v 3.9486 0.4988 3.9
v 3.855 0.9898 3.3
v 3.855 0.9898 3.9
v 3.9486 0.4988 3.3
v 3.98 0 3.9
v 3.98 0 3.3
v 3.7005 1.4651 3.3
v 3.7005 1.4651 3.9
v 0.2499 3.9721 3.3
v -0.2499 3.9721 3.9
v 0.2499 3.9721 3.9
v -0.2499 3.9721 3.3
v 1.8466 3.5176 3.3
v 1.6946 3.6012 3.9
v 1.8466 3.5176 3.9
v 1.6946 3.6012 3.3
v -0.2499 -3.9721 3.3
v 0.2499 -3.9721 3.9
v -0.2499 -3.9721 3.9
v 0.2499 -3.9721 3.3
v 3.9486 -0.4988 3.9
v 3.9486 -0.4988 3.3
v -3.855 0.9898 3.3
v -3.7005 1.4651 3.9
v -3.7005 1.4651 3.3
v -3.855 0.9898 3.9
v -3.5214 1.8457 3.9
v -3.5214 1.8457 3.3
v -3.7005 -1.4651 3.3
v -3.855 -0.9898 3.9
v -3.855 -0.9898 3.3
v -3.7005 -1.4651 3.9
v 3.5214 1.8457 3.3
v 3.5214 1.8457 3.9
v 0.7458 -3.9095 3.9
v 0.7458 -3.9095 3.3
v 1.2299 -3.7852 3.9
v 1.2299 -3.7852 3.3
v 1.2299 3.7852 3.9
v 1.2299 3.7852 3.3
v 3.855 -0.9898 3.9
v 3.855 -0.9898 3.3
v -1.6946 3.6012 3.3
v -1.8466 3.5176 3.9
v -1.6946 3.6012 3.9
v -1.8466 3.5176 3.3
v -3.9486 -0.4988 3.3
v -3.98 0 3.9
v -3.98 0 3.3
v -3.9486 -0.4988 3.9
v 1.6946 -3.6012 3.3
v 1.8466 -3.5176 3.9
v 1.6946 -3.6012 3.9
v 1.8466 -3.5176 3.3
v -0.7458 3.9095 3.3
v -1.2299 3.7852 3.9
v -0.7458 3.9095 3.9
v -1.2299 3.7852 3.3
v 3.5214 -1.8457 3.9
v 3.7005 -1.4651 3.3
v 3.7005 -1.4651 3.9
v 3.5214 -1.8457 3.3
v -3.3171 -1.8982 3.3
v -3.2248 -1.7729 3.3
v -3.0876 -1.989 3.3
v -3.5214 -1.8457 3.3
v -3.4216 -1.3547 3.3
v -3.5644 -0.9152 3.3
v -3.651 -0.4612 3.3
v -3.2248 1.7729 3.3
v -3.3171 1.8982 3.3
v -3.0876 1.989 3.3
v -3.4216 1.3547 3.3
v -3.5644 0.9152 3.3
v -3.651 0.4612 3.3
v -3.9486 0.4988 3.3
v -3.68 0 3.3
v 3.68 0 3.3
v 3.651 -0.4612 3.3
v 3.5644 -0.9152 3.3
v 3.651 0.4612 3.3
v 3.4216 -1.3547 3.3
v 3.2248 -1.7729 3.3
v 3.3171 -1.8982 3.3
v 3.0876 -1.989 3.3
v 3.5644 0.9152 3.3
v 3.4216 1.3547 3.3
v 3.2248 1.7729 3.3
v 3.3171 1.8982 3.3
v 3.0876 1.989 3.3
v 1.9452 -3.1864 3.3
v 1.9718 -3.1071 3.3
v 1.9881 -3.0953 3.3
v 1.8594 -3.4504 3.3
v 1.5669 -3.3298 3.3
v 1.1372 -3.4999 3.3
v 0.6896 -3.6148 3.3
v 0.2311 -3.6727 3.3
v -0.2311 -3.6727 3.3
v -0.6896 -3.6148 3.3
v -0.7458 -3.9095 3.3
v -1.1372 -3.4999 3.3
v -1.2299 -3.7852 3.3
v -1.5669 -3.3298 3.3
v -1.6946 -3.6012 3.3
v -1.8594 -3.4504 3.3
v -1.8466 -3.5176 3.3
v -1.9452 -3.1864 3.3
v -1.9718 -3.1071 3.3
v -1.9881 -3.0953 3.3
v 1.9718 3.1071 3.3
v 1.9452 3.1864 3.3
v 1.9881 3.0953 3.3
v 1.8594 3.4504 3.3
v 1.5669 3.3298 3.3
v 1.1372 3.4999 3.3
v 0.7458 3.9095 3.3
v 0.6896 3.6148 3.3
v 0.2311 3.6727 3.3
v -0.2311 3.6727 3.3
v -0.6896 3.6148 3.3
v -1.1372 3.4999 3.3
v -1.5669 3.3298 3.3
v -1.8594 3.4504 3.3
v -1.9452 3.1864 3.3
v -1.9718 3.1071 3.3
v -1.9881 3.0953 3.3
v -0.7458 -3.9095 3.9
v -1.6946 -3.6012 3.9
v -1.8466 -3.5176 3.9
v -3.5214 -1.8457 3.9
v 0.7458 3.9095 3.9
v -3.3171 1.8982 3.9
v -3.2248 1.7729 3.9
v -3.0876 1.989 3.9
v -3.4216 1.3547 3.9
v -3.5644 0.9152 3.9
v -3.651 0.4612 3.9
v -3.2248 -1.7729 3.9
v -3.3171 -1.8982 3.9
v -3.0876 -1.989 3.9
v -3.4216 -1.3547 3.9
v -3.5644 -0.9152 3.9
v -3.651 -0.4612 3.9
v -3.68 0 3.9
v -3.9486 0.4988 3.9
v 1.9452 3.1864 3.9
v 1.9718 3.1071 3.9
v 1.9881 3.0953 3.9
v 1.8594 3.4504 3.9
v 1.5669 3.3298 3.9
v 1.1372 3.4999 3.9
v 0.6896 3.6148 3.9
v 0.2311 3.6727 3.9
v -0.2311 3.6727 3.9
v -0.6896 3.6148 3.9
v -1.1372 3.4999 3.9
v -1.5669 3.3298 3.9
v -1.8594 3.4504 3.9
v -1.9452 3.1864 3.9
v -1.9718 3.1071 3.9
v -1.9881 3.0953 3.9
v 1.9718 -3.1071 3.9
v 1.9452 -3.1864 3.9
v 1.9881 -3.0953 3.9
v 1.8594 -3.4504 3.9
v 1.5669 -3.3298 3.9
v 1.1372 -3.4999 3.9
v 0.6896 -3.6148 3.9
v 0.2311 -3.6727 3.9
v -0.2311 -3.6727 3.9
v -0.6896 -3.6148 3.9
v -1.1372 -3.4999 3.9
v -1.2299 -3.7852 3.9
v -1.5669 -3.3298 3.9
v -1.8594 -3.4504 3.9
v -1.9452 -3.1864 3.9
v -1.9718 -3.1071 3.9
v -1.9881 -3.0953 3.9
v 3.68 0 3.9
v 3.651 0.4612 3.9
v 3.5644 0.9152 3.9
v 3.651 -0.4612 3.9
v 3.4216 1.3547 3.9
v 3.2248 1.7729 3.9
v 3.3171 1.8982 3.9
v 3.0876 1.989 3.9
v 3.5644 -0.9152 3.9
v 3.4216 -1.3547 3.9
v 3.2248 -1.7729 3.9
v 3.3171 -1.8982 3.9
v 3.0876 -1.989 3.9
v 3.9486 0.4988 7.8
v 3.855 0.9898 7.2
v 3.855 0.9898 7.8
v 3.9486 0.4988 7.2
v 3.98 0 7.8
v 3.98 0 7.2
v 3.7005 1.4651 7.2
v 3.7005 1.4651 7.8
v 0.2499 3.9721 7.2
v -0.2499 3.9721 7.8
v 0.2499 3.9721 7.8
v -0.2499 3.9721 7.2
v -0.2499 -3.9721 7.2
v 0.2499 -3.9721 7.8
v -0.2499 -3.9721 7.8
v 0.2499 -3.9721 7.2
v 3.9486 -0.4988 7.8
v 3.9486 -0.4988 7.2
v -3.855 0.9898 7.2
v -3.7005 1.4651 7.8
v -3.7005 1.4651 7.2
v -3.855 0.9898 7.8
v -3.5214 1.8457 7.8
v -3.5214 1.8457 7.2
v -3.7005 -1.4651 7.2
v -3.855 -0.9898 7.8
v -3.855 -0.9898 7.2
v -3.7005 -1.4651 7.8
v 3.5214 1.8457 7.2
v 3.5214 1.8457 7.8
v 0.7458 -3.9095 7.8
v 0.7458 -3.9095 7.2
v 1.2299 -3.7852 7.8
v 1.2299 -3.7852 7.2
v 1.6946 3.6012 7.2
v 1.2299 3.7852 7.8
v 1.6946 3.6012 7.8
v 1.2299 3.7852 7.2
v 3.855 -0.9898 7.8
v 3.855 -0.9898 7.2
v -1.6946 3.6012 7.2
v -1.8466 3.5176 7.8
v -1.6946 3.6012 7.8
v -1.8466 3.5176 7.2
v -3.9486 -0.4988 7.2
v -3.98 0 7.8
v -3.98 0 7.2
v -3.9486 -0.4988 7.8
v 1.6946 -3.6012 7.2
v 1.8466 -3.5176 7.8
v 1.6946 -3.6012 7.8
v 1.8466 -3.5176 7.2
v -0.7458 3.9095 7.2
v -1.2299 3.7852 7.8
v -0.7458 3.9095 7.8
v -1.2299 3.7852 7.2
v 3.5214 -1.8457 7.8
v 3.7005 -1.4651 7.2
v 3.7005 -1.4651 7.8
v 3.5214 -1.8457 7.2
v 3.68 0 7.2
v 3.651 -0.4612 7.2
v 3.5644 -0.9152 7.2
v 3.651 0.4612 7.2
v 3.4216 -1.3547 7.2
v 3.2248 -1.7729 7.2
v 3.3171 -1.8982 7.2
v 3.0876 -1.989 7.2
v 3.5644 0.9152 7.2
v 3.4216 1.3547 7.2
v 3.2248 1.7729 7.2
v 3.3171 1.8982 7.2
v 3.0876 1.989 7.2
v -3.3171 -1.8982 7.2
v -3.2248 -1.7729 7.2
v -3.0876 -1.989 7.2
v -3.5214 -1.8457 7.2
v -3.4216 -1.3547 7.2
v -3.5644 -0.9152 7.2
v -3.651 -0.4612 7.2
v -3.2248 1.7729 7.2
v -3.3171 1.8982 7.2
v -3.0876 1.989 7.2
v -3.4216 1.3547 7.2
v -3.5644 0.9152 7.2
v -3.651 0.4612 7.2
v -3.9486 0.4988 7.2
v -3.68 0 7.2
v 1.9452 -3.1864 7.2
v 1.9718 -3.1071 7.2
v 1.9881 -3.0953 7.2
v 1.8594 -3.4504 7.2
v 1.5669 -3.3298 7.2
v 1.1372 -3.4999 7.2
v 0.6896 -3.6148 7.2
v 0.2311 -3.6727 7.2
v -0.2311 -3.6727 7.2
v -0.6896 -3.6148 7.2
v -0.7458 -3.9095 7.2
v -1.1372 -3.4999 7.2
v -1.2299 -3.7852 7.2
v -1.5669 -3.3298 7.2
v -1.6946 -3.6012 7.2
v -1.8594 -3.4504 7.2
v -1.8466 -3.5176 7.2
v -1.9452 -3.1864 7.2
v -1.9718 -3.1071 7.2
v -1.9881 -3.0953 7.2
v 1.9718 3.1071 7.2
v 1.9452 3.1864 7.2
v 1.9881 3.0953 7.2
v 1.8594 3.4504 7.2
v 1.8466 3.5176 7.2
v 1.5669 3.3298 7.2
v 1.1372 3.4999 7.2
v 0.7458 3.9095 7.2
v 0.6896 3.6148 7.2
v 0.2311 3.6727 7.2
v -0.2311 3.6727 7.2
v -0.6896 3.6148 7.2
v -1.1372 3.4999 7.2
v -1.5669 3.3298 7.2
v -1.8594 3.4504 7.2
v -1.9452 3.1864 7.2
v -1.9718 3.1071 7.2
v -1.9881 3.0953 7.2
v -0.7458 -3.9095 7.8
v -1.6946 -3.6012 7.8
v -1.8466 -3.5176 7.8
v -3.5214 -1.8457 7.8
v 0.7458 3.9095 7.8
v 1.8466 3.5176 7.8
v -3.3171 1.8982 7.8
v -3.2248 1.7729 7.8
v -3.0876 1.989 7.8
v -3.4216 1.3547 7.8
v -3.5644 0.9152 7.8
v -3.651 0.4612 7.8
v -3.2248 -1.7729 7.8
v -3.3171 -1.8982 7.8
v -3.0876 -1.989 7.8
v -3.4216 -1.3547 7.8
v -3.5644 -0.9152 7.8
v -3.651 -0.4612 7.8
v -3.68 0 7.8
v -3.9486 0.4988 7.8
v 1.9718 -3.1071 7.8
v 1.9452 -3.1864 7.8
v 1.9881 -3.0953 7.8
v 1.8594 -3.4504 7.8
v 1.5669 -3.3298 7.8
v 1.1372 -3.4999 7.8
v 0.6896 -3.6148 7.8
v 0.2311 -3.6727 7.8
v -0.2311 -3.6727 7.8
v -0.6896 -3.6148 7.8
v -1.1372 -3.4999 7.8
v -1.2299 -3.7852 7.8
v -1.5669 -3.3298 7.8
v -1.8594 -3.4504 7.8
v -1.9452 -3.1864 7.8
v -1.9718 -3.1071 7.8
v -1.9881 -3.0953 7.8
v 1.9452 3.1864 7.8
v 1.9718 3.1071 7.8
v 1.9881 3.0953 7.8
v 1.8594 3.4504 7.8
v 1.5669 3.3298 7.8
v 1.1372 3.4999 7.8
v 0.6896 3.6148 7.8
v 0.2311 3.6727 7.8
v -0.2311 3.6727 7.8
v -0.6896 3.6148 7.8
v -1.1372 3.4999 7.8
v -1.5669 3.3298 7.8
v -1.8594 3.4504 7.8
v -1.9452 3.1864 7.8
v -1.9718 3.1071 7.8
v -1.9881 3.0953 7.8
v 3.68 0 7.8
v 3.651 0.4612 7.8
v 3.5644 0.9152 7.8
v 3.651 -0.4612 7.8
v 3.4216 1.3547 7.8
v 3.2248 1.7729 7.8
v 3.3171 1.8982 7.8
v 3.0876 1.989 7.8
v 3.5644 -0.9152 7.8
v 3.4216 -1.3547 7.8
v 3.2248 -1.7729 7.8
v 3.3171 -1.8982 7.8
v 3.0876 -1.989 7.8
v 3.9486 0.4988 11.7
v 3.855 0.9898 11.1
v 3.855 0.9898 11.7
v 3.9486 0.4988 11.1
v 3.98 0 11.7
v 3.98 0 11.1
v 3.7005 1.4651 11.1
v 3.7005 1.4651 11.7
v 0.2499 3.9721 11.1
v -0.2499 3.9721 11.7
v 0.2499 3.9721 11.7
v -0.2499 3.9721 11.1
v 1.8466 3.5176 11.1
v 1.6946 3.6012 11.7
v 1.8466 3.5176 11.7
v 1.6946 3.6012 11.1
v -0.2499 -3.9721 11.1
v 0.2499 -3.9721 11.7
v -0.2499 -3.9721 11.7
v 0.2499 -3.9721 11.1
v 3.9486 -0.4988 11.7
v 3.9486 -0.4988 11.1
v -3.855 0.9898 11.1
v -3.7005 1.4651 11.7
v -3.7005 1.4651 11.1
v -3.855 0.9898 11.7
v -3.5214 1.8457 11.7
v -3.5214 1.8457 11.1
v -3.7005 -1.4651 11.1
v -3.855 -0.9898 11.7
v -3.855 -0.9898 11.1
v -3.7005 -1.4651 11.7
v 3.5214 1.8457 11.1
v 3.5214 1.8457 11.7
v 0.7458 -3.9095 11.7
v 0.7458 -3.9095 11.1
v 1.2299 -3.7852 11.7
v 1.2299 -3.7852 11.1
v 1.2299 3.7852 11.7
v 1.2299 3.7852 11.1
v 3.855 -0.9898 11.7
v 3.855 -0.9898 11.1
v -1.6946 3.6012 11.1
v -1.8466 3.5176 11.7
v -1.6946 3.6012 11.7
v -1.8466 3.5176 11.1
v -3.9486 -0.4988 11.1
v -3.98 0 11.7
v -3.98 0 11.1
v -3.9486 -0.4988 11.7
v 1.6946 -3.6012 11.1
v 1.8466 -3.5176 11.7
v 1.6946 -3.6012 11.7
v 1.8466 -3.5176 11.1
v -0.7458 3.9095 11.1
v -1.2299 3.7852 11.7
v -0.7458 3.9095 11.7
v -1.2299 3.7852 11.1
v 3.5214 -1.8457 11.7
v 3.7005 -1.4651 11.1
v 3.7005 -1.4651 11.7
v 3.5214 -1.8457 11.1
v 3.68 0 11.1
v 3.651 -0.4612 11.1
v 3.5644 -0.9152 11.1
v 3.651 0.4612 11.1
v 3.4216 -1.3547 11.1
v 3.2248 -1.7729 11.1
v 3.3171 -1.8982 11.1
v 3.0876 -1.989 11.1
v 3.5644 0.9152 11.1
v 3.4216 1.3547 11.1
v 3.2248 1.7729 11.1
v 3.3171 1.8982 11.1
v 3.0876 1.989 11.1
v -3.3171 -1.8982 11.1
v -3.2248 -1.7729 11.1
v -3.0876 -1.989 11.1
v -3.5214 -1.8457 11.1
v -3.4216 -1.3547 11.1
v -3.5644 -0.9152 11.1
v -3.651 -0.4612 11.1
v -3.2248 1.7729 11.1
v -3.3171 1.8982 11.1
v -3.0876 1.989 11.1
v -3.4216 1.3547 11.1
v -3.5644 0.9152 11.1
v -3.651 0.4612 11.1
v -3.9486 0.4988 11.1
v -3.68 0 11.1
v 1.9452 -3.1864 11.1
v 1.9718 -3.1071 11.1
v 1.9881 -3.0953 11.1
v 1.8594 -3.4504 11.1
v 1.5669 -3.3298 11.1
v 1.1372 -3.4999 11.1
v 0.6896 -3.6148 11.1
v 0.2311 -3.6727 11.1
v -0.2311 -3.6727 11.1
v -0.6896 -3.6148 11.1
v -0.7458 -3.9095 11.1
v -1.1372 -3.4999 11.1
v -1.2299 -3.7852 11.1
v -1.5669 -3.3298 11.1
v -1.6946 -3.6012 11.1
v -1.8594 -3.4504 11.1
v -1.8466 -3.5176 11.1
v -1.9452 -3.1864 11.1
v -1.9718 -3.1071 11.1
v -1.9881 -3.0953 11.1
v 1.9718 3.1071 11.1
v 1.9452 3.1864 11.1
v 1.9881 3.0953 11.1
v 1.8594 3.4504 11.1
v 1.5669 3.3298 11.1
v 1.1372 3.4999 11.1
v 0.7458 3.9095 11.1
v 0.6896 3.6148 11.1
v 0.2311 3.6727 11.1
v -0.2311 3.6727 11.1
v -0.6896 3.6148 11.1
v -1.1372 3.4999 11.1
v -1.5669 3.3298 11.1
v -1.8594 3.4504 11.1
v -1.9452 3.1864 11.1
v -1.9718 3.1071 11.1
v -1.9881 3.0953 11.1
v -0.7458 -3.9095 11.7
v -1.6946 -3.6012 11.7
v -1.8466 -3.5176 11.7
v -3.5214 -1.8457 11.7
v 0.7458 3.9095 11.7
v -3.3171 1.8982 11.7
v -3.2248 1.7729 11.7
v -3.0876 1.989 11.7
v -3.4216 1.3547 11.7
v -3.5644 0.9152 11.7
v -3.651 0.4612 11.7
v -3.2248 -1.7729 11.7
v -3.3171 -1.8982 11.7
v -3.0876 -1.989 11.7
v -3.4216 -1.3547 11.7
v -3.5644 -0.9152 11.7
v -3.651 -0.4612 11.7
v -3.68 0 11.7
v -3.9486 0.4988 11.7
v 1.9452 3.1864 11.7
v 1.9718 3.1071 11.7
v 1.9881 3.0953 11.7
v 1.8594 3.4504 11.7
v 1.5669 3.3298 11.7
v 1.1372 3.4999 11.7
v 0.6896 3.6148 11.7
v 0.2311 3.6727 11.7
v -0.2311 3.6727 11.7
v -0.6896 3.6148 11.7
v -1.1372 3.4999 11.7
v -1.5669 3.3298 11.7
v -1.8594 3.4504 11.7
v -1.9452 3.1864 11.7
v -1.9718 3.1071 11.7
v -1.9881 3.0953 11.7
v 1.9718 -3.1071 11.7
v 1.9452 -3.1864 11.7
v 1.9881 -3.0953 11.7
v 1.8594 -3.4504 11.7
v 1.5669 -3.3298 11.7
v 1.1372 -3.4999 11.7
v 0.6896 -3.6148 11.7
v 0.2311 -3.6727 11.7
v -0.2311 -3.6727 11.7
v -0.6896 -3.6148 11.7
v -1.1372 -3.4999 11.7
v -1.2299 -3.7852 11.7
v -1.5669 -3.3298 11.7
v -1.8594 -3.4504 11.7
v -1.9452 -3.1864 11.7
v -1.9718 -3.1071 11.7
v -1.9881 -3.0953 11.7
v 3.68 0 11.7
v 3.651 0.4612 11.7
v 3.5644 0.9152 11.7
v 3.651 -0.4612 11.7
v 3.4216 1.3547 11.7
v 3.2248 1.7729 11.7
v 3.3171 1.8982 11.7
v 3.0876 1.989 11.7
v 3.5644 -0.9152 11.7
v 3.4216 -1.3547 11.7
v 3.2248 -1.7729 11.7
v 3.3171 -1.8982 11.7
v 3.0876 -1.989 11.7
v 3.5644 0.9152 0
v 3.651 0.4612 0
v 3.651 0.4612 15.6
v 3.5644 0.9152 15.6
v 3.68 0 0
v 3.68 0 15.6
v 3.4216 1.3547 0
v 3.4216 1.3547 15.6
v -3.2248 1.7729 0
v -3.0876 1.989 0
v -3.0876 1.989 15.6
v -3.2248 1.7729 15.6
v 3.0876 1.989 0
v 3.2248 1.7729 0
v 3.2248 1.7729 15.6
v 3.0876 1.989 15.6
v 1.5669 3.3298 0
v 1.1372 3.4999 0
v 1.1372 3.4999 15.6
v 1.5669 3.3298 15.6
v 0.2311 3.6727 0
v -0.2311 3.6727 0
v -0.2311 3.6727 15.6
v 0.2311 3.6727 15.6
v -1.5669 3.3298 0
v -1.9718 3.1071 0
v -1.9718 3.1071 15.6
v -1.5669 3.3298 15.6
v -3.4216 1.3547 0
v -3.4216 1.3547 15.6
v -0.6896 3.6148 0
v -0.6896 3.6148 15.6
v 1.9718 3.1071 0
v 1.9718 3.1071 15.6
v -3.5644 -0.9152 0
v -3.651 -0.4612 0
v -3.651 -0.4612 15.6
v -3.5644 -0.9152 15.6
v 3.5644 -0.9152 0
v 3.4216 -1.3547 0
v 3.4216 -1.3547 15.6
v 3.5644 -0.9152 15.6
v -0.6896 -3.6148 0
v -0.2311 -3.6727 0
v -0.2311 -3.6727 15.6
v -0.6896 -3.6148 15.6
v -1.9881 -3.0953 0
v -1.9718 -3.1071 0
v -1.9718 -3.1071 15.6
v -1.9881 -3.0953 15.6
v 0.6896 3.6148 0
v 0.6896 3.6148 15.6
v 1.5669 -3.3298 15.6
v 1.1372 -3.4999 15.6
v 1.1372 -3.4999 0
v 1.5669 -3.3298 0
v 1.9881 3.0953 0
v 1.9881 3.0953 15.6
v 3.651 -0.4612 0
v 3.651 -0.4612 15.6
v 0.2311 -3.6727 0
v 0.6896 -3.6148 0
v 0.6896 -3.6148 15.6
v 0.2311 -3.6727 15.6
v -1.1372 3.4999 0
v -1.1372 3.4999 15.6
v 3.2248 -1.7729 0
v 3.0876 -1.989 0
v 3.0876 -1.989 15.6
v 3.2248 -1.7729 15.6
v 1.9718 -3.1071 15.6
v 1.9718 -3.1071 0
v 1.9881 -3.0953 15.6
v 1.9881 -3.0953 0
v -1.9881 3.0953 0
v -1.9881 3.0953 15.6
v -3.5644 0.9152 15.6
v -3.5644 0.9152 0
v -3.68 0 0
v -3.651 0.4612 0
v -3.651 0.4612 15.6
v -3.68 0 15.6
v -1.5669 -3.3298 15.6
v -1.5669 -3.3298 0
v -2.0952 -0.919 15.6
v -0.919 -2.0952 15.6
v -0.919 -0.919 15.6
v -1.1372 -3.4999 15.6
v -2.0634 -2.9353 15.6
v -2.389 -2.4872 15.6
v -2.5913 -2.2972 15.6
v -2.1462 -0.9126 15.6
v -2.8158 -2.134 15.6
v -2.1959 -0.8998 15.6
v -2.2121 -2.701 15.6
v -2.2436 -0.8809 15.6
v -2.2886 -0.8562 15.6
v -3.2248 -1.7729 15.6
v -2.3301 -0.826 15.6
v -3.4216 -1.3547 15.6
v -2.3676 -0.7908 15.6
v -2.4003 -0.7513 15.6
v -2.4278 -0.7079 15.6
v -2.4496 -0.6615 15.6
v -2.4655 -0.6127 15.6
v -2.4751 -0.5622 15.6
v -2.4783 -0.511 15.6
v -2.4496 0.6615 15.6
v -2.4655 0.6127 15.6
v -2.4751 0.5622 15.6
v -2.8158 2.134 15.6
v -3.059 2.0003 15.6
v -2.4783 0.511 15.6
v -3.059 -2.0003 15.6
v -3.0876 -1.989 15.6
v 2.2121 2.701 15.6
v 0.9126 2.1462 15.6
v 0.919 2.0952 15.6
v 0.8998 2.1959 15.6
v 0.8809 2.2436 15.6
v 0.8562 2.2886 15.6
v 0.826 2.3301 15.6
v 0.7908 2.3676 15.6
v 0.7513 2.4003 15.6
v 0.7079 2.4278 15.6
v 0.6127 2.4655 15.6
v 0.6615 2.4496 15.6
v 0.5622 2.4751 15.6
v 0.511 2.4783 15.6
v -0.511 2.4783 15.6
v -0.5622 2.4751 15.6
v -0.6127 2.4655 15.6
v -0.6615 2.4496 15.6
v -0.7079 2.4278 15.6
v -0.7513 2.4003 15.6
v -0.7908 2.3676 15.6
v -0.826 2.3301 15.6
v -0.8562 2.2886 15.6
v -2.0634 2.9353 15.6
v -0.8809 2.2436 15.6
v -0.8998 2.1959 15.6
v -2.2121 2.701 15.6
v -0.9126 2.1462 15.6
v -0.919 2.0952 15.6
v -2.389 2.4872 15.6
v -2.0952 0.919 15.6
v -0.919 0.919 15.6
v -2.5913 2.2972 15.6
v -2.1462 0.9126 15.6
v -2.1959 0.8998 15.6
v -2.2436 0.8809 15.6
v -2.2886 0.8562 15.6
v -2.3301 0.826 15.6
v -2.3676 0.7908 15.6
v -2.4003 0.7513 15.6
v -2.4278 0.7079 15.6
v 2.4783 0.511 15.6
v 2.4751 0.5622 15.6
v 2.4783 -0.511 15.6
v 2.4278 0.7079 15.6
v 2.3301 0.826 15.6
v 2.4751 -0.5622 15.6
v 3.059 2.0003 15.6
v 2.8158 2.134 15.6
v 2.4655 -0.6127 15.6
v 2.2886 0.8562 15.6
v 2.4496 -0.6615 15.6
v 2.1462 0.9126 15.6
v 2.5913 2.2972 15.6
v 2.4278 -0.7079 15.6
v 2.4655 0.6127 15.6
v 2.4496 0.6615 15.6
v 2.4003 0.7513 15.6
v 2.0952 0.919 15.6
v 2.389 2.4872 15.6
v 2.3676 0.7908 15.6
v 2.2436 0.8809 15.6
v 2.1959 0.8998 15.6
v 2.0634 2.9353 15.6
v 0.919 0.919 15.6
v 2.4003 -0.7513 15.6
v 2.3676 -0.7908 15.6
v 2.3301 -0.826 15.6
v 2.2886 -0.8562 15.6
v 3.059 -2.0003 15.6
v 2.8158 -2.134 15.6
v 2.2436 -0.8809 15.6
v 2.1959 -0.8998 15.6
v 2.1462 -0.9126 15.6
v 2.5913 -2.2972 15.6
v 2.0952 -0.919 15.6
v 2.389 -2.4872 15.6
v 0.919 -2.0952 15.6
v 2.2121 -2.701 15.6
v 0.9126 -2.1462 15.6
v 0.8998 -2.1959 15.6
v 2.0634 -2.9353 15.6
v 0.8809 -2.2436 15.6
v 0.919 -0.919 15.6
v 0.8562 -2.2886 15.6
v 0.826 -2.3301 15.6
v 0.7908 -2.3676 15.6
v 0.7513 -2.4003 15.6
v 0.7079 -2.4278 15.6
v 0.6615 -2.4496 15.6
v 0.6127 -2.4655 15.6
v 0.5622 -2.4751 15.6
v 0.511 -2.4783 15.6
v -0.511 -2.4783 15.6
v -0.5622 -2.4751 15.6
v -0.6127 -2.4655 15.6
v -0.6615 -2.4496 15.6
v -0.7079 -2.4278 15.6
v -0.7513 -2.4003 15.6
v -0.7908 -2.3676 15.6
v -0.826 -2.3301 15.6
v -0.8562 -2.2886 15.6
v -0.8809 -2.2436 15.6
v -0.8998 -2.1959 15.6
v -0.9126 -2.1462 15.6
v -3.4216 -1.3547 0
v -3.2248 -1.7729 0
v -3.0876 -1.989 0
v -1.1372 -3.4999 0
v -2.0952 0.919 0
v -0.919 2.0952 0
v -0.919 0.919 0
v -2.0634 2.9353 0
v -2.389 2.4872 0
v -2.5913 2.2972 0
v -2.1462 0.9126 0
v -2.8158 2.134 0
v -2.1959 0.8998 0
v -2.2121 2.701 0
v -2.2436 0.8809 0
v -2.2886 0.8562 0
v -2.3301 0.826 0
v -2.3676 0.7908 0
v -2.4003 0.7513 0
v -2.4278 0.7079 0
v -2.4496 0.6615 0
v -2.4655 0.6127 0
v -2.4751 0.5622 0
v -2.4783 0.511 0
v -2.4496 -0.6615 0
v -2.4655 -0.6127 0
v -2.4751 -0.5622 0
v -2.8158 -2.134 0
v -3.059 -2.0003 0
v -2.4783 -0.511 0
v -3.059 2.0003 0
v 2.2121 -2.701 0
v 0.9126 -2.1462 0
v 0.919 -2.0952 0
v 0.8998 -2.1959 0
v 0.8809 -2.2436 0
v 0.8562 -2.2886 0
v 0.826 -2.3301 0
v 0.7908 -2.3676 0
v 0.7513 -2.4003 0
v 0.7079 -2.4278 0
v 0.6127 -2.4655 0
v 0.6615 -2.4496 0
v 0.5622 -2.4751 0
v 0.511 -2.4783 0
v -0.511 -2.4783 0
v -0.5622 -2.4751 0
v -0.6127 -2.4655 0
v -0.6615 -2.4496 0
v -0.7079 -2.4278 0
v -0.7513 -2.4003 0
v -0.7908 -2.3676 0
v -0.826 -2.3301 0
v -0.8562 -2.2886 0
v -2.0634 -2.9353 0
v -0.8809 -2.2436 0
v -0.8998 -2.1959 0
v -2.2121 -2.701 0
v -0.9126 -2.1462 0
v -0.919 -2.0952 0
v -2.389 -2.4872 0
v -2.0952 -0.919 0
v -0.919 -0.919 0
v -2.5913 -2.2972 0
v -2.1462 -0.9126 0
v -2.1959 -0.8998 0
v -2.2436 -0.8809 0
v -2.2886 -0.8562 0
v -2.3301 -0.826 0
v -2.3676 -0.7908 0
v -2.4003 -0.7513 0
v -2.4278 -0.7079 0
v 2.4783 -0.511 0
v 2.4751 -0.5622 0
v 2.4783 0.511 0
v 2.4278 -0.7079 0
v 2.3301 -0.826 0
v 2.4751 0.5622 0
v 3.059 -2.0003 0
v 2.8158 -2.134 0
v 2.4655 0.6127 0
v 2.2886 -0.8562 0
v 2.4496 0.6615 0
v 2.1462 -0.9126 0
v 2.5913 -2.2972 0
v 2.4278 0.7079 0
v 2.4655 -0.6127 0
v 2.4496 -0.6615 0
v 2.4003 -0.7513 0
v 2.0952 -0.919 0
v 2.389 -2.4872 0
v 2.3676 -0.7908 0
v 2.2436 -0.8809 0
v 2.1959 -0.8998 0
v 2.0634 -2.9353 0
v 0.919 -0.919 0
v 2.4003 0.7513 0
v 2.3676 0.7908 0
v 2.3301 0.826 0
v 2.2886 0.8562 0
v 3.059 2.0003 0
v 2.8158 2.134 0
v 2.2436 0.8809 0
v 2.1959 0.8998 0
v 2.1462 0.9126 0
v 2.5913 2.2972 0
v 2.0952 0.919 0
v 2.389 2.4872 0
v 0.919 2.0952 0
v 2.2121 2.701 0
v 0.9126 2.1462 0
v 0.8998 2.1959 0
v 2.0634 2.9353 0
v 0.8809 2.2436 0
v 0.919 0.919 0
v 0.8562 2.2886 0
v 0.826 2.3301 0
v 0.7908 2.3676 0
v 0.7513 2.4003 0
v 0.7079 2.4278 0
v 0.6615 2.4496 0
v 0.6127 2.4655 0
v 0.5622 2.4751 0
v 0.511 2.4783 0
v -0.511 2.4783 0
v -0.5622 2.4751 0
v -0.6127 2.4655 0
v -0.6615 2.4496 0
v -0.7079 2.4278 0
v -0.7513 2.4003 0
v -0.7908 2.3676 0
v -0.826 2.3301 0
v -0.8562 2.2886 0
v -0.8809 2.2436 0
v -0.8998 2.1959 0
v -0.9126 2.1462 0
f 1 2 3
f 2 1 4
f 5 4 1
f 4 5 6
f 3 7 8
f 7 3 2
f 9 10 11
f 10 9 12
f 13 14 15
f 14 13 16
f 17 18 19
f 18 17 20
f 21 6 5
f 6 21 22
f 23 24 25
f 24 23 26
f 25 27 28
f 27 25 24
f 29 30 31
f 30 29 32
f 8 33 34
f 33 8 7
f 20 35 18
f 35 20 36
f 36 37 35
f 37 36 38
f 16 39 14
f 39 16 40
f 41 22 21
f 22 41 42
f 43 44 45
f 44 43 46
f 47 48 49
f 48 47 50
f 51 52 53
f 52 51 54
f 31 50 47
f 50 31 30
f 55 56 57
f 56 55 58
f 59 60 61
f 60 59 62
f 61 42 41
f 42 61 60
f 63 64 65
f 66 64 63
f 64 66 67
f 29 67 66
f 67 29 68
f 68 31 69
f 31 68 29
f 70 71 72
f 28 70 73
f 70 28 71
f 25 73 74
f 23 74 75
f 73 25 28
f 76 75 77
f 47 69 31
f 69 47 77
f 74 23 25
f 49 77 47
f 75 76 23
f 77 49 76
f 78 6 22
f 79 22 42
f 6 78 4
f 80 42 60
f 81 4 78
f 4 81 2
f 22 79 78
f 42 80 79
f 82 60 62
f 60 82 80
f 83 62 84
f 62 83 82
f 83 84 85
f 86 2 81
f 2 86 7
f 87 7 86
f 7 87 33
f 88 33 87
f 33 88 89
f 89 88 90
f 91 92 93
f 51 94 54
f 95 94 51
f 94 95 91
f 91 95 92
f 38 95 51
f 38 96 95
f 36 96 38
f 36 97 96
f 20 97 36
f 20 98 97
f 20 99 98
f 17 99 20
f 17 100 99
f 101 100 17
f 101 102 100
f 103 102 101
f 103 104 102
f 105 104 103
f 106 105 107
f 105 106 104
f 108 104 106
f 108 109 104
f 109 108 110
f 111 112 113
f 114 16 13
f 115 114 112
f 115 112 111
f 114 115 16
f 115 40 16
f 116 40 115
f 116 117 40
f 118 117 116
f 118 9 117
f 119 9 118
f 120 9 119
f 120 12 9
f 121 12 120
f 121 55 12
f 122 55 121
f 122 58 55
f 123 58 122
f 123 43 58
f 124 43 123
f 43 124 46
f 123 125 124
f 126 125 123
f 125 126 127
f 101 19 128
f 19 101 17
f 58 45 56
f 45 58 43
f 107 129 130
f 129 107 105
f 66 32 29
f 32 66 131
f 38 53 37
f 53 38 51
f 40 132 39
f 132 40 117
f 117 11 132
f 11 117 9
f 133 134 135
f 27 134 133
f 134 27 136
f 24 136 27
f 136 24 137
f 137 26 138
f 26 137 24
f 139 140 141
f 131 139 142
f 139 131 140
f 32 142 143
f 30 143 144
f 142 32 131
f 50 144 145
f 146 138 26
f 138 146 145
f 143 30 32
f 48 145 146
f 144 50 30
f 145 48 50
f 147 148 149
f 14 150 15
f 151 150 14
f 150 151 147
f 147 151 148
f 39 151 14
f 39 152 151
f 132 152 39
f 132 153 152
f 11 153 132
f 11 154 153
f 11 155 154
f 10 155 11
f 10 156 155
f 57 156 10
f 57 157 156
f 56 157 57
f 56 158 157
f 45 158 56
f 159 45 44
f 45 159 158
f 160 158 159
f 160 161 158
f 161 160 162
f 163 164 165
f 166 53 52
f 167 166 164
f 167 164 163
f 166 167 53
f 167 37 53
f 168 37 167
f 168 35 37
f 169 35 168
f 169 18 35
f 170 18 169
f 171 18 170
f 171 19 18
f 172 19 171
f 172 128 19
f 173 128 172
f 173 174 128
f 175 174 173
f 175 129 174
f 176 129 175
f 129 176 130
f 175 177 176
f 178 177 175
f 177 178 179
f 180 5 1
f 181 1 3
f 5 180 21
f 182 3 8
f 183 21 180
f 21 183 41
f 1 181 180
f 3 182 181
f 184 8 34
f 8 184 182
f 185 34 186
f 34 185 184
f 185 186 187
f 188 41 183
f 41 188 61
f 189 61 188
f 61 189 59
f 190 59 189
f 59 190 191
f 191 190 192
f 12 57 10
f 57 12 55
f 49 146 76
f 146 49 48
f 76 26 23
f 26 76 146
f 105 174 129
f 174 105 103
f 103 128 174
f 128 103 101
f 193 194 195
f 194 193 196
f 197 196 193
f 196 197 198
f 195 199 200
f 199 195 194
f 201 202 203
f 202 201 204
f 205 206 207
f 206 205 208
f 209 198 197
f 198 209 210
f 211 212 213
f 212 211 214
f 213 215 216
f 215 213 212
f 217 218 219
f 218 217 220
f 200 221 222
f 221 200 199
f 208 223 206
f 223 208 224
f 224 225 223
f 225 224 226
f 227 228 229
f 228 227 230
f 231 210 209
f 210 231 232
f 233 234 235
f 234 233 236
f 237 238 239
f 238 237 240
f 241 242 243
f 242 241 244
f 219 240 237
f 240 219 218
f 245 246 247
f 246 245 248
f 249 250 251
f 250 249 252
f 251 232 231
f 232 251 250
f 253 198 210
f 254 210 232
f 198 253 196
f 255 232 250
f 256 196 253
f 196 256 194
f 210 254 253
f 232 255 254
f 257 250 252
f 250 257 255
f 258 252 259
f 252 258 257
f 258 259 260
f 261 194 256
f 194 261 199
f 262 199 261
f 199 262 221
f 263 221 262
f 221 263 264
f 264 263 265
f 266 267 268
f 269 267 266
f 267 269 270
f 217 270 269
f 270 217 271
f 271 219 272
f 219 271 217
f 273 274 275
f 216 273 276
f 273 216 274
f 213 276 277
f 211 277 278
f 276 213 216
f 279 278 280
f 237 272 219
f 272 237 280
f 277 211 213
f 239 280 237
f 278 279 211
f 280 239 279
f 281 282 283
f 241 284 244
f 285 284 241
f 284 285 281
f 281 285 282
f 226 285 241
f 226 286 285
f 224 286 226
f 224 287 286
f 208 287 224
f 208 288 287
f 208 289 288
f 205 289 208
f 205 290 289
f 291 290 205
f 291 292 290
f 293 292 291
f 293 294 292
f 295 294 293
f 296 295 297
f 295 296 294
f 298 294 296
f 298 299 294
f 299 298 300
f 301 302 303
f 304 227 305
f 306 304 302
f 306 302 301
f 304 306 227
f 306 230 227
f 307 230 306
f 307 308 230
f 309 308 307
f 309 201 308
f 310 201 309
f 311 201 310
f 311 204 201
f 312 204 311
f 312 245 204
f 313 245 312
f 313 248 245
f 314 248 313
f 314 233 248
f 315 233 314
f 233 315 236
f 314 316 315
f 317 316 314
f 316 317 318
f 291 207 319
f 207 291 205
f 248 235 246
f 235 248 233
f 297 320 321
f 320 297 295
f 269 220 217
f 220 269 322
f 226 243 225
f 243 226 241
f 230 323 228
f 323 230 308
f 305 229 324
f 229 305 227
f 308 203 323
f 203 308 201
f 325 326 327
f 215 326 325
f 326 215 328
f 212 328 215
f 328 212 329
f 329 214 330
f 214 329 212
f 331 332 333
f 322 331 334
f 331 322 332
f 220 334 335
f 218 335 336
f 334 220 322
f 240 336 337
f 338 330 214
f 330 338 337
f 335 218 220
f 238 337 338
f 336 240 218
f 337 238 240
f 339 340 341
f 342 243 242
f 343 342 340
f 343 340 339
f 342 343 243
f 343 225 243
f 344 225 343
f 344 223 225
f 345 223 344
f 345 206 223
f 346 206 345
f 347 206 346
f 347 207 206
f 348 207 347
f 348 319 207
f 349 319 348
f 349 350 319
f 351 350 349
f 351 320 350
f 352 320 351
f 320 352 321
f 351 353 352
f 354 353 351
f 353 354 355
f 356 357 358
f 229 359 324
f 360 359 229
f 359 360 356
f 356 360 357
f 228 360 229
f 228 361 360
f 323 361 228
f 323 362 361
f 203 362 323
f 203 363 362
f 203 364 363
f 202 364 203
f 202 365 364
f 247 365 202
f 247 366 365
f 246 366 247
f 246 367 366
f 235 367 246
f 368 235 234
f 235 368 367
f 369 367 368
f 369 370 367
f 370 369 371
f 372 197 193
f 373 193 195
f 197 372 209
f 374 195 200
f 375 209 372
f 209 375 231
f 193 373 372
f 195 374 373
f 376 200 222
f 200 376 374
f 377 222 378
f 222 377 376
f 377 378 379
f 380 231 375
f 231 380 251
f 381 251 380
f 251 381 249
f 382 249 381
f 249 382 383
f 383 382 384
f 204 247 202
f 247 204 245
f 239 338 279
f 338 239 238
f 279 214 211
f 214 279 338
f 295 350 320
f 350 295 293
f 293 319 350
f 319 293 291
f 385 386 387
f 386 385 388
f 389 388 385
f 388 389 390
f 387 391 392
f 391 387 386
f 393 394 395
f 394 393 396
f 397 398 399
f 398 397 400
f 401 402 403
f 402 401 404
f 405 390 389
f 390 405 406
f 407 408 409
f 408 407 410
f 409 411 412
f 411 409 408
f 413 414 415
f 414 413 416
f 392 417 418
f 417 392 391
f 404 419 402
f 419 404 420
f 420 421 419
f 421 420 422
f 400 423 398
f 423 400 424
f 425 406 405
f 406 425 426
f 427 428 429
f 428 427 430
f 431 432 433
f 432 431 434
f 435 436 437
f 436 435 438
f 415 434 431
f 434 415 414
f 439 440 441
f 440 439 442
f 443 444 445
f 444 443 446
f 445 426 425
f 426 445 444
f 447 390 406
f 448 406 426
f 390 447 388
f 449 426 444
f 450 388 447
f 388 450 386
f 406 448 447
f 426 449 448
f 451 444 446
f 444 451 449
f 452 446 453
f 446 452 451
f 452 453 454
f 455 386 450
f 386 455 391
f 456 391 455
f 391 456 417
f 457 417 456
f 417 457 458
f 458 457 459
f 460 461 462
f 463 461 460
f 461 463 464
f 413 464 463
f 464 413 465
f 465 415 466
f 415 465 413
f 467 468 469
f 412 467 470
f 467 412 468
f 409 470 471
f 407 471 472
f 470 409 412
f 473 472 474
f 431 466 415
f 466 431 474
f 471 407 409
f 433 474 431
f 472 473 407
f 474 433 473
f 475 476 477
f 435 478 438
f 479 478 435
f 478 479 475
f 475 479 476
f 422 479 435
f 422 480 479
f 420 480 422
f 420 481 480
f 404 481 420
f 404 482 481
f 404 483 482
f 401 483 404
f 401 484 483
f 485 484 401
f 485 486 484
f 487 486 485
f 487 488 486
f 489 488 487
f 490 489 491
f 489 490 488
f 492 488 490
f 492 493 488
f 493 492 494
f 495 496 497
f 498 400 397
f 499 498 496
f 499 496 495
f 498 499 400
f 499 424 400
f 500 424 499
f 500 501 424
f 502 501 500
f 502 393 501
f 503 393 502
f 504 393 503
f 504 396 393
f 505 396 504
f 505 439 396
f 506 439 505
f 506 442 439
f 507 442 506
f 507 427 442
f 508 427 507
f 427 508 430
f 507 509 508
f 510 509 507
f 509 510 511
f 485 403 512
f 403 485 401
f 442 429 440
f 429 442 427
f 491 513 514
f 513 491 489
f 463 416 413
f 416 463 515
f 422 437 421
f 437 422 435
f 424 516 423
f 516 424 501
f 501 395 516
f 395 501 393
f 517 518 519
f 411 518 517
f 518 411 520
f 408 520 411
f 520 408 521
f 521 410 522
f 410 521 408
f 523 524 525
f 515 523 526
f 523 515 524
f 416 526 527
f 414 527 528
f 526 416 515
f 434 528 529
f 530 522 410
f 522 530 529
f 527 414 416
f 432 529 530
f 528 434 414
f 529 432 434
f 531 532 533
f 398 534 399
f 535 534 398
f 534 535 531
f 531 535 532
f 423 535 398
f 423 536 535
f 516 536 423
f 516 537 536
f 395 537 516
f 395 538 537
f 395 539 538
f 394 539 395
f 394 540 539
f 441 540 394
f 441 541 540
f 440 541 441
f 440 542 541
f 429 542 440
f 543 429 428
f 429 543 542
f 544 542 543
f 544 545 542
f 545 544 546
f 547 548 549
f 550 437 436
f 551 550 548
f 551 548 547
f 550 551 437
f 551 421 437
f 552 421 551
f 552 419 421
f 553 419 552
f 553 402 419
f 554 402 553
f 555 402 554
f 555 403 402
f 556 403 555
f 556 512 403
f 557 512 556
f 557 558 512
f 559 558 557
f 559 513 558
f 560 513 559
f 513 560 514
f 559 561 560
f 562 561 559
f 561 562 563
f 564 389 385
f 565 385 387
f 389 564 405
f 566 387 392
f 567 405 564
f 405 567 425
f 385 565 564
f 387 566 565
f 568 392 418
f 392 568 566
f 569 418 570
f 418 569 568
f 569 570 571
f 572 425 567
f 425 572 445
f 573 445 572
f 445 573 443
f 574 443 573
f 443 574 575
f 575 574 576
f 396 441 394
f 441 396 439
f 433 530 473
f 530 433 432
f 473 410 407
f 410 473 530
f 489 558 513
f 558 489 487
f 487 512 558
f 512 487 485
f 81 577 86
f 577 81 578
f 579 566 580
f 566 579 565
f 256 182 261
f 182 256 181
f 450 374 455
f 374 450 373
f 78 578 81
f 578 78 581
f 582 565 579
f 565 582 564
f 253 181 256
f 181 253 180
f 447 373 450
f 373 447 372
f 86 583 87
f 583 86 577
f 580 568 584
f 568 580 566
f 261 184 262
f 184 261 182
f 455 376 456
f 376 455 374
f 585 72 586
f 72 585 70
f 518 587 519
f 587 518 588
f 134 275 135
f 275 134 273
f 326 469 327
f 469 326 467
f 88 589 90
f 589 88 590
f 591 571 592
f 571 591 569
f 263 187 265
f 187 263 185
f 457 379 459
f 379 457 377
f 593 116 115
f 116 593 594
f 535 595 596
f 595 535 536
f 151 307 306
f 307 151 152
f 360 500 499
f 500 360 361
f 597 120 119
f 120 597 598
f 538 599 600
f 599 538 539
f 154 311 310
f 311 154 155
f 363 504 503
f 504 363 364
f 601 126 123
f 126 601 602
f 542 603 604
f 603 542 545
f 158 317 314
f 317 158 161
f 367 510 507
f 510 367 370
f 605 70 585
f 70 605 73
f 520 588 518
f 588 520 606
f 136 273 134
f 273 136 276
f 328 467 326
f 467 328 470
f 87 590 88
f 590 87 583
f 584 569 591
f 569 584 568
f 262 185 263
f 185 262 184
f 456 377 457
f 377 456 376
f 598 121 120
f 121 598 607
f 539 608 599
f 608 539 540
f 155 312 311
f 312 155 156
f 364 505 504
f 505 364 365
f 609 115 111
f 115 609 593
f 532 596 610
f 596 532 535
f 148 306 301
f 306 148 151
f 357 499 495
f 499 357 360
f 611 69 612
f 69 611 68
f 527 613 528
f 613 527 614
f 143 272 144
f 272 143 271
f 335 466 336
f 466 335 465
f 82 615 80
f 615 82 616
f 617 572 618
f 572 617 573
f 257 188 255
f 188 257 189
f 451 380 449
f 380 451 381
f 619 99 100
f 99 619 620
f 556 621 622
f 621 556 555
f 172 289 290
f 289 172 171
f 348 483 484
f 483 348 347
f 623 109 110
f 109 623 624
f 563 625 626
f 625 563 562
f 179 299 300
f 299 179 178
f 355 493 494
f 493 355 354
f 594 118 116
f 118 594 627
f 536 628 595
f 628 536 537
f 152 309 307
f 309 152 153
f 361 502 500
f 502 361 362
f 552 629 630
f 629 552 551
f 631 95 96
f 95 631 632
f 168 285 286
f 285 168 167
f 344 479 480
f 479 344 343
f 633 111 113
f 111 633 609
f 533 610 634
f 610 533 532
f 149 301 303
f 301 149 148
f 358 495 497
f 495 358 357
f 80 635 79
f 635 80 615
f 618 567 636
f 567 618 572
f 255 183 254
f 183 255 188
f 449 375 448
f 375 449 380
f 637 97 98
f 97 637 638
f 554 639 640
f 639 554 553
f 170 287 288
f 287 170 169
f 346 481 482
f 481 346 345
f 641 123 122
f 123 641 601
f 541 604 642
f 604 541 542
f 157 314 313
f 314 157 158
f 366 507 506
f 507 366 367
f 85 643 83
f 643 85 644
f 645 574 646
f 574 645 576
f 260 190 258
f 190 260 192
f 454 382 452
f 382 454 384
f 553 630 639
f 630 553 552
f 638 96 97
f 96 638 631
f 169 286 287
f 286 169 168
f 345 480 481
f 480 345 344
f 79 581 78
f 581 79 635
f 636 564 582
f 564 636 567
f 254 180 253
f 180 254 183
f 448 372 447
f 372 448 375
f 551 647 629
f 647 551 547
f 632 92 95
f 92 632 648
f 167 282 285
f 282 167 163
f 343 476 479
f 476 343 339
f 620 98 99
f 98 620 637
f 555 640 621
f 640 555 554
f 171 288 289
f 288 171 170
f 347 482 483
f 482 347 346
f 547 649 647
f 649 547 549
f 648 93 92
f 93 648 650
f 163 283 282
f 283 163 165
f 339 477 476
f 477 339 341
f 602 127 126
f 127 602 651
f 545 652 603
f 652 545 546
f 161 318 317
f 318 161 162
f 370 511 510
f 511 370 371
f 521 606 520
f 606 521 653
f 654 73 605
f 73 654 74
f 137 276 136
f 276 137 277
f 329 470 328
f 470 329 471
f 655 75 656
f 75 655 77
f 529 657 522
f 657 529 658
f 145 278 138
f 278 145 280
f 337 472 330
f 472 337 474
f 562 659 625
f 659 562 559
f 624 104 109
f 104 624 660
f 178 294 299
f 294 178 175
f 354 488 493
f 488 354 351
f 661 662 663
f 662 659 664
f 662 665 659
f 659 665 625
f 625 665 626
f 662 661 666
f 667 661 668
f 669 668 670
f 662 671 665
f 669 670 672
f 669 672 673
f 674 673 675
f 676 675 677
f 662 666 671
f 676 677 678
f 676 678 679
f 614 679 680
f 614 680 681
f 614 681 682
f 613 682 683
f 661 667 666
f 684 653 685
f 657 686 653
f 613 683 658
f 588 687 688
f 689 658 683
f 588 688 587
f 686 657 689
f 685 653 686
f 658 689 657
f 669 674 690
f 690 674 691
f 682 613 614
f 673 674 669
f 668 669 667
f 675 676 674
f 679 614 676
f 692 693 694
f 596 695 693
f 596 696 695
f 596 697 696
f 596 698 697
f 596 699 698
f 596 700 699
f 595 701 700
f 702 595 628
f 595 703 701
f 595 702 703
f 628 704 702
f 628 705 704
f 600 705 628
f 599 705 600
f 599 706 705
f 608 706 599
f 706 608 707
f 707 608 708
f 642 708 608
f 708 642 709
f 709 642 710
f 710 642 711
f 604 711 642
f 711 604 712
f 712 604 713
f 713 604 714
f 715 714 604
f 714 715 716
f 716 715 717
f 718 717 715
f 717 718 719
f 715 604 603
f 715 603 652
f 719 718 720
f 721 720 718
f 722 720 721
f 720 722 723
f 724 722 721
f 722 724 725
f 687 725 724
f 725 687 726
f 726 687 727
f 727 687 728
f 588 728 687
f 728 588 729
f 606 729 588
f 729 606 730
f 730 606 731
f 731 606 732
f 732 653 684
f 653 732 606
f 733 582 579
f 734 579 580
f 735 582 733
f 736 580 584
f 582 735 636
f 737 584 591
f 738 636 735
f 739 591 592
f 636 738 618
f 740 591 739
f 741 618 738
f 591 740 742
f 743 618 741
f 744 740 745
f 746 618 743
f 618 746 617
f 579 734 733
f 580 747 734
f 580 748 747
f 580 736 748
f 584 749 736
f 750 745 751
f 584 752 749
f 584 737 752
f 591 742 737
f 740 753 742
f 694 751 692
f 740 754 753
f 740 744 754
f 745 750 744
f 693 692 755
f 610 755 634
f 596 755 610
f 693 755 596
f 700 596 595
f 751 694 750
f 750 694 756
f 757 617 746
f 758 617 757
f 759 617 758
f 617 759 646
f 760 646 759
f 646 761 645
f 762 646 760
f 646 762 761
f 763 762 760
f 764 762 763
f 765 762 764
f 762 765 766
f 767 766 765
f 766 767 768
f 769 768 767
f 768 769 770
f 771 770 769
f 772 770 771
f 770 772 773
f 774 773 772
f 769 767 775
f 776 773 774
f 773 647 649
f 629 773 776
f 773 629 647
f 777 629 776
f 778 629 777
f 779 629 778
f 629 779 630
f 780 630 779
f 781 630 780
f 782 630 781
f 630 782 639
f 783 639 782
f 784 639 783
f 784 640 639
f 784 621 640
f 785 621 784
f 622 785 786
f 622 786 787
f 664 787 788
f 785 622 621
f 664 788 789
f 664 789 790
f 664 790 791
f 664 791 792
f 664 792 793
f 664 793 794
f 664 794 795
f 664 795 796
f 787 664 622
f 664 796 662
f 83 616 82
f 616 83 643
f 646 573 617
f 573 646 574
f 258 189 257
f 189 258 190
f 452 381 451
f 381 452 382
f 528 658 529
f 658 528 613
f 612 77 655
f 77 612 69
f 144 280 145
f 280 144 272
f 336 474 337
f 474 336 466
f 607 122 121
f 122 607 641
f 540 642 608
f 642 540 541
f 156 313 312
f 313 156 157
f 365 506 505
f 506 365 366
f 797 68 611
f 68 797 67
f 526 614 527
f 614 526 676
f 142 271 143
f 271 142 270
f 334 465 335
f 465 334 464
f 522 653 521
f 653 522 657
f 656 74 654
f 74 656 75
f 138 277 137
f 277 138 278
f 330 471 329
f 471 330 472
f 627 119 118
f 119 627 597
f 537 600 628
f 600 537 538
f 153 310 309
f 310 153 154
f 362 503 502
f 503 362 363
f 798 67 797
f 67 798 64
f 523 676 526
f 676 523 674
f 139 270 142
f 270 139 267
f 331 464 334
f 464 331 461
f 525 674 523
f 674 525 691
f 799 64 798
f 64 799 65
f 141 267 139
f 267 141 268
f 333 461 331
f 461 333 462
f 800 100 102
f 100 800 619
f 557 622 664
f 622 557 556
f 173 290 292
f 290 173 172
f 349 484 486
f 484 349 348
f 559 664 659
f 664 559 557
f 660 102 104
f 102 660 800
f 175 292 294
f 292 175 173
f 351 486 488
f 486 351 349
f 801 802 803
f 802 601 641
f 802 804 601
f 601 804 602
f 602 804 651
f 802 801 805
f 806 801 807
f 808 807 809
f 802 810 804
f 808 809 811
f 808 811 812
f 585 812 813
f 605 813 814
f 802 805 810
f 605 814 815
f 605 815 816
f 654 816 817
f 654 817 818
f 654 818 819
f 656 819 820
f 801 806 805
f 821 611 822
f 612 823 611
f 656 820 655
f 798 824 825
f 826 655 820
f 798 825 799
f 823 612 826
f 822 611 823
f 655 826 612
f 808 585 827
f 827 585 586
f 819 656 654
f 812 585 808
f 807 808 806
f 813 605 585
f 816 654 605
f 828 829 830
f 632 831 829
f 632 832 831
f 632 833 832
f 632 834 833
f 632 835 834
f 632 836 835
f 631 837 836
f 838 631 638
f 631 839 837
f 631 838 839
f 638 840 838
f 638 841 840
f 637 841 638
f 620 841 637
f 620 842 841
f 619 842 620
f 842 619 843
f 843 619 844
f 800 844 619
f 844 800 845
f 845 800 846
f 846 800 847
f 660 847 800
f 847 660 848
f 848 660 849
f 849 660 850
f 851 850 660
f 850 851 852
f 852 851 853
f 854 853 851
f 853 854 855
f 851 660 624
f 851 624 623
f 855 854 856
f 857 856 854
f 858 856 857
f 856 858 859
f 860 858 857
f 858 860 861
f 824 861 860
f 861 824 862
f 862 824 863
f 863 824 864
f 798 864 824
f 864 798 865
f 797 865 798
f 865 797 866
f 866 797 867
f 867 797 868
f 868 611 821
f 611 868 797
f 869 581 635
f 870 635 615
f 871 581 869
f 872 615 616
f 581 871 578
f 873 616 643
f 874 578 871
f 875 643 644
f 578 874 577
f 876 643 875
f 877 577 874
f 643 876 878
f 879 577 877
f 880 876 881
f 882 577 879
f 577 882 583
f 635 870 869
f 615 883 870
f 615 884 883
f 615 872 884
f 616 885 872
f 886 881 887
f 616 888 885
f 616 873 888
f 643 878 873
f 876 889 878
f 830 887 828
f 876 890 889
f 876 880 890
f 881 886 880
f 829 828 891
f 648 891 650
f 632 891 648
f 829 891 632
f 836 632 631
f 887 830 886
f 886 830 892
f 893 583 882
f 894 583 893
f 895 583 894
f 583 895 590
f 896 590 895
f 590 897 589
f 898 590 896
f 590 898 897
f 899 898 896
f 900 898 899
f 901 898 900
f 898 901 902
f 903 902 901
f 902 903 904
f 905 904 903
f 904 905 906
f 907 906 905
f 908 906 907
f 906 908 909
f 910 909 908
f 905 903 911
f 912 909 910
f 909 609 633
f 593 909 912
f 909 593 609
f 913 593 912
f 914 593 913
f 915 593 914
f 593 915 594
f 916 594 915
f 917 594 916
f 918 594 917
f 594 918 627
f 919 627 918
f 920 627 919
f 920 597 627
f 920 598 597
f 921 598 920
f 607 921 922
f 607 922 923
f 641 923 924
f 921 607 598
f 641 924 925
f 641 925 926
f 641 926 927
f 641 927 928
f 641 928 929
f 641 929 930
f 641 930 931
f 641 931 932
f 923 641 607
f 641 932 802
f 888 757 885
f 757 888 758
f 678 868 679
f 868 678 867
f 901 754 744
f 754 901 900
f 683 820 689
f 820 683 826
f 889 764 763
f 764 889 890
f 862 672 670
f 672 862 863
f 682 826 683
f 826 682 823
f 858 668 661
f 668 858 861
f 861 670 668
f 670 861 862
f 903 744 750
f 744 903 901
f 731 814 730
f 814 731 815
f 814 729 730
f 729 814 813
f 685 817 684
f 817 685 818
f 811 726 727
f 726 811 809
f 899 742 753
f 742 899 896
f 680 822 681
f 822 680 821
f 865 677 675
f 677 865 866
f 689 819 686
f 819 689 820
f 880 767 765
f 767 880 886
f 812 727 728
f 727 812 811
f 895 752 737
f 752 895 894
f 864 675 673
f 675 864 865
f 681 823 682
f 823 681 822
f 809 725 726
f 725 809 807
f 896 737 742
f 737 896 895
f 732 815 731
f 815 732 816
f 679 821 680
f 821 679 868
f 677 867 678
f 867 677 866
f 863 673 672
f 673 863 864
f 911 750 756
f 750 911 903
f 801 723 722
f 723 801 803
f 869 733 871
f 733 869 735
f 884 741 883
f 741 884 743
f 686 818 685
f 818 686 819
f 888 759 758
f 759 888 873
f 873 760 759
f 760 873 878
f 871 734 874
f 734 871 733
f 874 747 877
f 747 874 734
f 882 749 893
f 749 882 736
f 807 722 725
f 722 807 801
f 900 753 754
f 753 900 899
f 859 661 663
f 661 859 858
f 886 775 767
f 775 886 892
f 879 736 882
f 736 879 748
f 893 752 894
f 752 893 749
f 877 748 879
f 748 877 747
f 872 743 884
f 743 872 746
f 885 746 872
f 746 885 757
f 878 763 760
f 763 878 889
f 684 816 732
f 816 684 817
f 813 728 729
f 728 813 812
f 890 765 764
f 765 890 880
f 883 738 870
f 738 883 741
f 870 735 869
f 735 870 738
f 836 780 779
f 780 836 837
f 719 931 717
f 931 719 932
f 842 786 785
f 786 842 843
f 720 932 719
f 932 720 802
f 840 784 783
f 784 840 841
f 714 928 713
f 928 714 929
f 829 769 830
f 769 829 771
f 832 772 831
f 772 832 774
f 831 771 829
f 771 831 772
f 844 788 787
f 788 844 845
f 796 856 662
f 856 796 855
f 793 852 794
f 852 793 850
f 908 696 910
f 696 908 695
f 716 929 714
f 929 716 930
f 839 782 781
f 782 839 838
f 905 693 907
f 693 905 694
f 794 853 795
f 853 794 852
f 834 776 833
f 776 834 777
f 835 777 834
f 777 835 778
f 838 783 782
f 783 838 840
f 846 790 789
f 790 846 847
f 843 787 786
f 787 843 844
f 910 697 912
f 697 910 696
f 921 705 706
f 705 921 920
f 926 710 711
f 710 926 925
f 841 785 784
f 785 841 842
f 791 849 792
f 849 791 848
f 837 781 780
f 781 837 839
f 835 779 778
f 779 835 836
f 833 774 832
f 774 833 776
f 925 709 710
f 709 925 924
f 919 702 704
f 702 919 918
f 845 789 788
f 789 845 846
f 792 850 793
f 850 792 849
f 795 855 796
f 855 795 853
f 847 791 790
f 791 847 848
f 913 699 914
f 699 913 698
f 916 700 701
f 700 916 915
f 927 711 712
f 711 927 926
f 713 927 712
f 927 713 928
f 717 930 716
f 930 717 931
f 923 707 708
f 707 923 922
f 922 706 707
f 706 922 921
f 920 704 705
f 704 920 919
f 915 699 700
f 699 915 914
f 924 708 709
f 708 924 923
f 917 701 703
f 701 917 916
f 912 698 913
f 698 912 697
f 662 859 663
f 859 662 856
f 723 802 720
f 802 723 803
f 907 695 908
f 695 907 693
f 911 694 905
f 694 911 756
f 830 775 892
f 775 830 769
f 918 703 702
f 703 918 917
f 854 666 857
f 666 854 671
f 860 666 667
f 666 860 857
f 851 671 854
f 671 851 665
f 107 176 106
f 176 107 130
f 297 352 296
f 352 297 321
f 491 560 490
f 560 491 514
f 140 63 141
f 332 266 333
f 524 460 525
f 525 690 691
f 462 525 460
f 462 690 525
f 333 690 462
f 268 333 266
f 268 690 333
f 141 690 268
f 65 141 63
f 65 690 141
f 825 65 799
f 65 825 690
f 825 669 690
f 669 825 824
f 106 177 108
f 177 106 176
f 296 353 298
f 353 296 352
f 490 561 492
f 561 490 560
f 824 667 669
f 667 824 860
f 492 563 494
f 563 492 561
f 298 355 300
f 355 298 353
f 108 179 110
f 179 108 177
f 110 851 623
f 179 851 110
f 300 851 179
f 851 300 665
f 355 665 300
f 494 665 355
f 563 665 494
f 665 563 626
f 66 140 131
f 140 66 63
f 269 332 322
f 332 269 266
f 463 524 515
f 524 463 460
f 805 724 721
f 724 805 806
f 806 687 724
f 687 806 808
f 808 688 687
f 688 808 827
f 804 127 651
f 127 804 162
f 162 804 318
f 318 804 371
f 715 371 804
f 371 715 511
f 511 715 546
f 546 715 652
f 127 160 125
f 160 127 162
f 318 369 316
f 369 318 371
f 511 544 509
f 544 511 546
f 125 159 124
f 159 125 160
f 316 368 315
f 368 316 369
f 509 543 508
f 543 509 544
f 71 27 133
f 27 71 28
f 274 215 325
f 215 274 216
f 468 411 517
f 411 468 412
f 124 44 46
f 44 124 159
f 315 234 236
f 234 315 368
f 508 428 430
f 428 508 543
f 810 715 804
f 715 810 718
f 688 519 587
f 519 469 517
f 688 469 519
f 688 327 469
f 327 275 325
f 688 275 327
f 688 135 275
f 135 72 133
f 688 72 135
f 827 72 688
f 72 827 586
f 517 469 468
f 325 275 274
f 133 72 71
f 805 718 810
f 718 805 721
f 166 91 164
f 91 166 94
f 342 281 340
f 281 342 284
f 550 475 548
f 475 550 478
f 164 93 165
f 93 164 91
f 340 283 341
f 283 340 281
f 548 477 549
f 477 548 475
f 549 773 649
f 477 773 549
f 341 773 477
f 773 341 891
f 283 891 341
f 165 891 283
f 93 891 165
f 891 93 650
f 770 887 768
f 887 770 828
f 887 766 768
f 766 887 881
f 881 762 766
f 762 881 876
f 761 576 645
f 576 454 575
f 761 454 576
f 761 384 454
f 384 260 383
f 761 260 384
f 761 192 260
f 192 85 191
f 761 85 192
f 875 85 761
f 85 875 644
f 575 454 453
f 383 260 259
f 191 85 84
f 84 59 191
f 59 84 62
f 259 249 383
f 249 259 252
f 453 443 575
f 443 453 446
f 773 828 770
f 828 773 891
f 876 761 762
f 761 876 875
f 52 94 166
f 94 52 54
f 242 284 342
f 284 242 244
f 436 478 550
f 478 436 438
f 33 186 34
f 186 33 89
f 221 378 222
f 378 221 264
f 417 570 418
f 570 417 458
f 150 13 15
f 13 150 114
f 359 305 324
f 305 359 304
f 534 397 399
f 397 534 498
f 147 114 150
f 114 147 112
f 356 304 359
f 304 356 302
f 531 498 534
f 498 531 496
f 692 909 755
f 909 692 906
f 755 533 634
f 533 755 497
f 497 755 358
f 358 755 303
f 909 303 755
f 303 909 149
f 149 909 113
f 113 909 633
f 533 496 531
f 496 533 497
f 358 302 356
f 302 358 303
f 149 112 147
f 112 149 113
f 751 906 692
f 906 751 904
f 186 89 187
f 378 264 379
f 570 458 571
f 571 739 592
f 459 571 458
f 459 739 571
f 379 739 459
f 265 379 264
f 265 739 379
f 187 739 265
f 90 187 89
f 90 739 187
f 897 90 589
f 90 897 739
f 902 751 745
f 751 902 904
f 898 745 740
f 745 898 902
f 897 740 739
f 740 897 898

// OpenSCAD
/**
 * LEGO and Technic are trademarks of the LEGO Group.
 *
 * For standard LEGO-compatible bricks, see LEGO.scad. This module
 * is specifically for parts without studs, like gears and axles.
 *
 * Copyright (c) 2025 BB (skidd13@gmx.de)
 *
 * Permission is hereby granted, free of charge, to any person obtaining
 * a copy of this software and associated documentation files (the
 * "Software"), to deal in the Software without restriction, including
 * without limitation the rights to use, copy, modify, merge, publish,
 * distribute, sublicense, and/or sell copies of the Software, and to
 * permit persons to whom the Software is furnished to do so, subject to
 * the following conditions:
 *
 * The above copyright notice and this permission notice shall be
 * included in all copies or substantial portions of the Software.
 *
 * THE SOFTWARE IS PROVIDED "AS IS", WITHOUT WARRANTY OF ANY KIND,
 * EXPRESS OR IMPLIED, INCLUDING BUT NOT LIMITED TO THE WARRANTIES OF
 * MERCHANTABILITY, FITNESS FOR A PARTICULAR PURPOSE AND
 * NONINFRINGEMENT. IN NO EVENT SHALL THE AUTHORS OR COPYRIGHT HOLDERS BE
 * LIABLE FOR ANY CLAIM, DAMAGES OR OTHER LIABILITY, WHETHER IN AN ACTION
 * OF CONTRACT, TORT OR OTHERWISE, ARISING FROM, OUT OF OR IN CONNECTION
 * WITH THE SOFTWARE OR THE USE OR OTHER DEALINGS IN THE SOFTWARE.
 */

include <Technic.scad>;

color( "red" ) technic_axle_connector( length = 2, ridged = true );
